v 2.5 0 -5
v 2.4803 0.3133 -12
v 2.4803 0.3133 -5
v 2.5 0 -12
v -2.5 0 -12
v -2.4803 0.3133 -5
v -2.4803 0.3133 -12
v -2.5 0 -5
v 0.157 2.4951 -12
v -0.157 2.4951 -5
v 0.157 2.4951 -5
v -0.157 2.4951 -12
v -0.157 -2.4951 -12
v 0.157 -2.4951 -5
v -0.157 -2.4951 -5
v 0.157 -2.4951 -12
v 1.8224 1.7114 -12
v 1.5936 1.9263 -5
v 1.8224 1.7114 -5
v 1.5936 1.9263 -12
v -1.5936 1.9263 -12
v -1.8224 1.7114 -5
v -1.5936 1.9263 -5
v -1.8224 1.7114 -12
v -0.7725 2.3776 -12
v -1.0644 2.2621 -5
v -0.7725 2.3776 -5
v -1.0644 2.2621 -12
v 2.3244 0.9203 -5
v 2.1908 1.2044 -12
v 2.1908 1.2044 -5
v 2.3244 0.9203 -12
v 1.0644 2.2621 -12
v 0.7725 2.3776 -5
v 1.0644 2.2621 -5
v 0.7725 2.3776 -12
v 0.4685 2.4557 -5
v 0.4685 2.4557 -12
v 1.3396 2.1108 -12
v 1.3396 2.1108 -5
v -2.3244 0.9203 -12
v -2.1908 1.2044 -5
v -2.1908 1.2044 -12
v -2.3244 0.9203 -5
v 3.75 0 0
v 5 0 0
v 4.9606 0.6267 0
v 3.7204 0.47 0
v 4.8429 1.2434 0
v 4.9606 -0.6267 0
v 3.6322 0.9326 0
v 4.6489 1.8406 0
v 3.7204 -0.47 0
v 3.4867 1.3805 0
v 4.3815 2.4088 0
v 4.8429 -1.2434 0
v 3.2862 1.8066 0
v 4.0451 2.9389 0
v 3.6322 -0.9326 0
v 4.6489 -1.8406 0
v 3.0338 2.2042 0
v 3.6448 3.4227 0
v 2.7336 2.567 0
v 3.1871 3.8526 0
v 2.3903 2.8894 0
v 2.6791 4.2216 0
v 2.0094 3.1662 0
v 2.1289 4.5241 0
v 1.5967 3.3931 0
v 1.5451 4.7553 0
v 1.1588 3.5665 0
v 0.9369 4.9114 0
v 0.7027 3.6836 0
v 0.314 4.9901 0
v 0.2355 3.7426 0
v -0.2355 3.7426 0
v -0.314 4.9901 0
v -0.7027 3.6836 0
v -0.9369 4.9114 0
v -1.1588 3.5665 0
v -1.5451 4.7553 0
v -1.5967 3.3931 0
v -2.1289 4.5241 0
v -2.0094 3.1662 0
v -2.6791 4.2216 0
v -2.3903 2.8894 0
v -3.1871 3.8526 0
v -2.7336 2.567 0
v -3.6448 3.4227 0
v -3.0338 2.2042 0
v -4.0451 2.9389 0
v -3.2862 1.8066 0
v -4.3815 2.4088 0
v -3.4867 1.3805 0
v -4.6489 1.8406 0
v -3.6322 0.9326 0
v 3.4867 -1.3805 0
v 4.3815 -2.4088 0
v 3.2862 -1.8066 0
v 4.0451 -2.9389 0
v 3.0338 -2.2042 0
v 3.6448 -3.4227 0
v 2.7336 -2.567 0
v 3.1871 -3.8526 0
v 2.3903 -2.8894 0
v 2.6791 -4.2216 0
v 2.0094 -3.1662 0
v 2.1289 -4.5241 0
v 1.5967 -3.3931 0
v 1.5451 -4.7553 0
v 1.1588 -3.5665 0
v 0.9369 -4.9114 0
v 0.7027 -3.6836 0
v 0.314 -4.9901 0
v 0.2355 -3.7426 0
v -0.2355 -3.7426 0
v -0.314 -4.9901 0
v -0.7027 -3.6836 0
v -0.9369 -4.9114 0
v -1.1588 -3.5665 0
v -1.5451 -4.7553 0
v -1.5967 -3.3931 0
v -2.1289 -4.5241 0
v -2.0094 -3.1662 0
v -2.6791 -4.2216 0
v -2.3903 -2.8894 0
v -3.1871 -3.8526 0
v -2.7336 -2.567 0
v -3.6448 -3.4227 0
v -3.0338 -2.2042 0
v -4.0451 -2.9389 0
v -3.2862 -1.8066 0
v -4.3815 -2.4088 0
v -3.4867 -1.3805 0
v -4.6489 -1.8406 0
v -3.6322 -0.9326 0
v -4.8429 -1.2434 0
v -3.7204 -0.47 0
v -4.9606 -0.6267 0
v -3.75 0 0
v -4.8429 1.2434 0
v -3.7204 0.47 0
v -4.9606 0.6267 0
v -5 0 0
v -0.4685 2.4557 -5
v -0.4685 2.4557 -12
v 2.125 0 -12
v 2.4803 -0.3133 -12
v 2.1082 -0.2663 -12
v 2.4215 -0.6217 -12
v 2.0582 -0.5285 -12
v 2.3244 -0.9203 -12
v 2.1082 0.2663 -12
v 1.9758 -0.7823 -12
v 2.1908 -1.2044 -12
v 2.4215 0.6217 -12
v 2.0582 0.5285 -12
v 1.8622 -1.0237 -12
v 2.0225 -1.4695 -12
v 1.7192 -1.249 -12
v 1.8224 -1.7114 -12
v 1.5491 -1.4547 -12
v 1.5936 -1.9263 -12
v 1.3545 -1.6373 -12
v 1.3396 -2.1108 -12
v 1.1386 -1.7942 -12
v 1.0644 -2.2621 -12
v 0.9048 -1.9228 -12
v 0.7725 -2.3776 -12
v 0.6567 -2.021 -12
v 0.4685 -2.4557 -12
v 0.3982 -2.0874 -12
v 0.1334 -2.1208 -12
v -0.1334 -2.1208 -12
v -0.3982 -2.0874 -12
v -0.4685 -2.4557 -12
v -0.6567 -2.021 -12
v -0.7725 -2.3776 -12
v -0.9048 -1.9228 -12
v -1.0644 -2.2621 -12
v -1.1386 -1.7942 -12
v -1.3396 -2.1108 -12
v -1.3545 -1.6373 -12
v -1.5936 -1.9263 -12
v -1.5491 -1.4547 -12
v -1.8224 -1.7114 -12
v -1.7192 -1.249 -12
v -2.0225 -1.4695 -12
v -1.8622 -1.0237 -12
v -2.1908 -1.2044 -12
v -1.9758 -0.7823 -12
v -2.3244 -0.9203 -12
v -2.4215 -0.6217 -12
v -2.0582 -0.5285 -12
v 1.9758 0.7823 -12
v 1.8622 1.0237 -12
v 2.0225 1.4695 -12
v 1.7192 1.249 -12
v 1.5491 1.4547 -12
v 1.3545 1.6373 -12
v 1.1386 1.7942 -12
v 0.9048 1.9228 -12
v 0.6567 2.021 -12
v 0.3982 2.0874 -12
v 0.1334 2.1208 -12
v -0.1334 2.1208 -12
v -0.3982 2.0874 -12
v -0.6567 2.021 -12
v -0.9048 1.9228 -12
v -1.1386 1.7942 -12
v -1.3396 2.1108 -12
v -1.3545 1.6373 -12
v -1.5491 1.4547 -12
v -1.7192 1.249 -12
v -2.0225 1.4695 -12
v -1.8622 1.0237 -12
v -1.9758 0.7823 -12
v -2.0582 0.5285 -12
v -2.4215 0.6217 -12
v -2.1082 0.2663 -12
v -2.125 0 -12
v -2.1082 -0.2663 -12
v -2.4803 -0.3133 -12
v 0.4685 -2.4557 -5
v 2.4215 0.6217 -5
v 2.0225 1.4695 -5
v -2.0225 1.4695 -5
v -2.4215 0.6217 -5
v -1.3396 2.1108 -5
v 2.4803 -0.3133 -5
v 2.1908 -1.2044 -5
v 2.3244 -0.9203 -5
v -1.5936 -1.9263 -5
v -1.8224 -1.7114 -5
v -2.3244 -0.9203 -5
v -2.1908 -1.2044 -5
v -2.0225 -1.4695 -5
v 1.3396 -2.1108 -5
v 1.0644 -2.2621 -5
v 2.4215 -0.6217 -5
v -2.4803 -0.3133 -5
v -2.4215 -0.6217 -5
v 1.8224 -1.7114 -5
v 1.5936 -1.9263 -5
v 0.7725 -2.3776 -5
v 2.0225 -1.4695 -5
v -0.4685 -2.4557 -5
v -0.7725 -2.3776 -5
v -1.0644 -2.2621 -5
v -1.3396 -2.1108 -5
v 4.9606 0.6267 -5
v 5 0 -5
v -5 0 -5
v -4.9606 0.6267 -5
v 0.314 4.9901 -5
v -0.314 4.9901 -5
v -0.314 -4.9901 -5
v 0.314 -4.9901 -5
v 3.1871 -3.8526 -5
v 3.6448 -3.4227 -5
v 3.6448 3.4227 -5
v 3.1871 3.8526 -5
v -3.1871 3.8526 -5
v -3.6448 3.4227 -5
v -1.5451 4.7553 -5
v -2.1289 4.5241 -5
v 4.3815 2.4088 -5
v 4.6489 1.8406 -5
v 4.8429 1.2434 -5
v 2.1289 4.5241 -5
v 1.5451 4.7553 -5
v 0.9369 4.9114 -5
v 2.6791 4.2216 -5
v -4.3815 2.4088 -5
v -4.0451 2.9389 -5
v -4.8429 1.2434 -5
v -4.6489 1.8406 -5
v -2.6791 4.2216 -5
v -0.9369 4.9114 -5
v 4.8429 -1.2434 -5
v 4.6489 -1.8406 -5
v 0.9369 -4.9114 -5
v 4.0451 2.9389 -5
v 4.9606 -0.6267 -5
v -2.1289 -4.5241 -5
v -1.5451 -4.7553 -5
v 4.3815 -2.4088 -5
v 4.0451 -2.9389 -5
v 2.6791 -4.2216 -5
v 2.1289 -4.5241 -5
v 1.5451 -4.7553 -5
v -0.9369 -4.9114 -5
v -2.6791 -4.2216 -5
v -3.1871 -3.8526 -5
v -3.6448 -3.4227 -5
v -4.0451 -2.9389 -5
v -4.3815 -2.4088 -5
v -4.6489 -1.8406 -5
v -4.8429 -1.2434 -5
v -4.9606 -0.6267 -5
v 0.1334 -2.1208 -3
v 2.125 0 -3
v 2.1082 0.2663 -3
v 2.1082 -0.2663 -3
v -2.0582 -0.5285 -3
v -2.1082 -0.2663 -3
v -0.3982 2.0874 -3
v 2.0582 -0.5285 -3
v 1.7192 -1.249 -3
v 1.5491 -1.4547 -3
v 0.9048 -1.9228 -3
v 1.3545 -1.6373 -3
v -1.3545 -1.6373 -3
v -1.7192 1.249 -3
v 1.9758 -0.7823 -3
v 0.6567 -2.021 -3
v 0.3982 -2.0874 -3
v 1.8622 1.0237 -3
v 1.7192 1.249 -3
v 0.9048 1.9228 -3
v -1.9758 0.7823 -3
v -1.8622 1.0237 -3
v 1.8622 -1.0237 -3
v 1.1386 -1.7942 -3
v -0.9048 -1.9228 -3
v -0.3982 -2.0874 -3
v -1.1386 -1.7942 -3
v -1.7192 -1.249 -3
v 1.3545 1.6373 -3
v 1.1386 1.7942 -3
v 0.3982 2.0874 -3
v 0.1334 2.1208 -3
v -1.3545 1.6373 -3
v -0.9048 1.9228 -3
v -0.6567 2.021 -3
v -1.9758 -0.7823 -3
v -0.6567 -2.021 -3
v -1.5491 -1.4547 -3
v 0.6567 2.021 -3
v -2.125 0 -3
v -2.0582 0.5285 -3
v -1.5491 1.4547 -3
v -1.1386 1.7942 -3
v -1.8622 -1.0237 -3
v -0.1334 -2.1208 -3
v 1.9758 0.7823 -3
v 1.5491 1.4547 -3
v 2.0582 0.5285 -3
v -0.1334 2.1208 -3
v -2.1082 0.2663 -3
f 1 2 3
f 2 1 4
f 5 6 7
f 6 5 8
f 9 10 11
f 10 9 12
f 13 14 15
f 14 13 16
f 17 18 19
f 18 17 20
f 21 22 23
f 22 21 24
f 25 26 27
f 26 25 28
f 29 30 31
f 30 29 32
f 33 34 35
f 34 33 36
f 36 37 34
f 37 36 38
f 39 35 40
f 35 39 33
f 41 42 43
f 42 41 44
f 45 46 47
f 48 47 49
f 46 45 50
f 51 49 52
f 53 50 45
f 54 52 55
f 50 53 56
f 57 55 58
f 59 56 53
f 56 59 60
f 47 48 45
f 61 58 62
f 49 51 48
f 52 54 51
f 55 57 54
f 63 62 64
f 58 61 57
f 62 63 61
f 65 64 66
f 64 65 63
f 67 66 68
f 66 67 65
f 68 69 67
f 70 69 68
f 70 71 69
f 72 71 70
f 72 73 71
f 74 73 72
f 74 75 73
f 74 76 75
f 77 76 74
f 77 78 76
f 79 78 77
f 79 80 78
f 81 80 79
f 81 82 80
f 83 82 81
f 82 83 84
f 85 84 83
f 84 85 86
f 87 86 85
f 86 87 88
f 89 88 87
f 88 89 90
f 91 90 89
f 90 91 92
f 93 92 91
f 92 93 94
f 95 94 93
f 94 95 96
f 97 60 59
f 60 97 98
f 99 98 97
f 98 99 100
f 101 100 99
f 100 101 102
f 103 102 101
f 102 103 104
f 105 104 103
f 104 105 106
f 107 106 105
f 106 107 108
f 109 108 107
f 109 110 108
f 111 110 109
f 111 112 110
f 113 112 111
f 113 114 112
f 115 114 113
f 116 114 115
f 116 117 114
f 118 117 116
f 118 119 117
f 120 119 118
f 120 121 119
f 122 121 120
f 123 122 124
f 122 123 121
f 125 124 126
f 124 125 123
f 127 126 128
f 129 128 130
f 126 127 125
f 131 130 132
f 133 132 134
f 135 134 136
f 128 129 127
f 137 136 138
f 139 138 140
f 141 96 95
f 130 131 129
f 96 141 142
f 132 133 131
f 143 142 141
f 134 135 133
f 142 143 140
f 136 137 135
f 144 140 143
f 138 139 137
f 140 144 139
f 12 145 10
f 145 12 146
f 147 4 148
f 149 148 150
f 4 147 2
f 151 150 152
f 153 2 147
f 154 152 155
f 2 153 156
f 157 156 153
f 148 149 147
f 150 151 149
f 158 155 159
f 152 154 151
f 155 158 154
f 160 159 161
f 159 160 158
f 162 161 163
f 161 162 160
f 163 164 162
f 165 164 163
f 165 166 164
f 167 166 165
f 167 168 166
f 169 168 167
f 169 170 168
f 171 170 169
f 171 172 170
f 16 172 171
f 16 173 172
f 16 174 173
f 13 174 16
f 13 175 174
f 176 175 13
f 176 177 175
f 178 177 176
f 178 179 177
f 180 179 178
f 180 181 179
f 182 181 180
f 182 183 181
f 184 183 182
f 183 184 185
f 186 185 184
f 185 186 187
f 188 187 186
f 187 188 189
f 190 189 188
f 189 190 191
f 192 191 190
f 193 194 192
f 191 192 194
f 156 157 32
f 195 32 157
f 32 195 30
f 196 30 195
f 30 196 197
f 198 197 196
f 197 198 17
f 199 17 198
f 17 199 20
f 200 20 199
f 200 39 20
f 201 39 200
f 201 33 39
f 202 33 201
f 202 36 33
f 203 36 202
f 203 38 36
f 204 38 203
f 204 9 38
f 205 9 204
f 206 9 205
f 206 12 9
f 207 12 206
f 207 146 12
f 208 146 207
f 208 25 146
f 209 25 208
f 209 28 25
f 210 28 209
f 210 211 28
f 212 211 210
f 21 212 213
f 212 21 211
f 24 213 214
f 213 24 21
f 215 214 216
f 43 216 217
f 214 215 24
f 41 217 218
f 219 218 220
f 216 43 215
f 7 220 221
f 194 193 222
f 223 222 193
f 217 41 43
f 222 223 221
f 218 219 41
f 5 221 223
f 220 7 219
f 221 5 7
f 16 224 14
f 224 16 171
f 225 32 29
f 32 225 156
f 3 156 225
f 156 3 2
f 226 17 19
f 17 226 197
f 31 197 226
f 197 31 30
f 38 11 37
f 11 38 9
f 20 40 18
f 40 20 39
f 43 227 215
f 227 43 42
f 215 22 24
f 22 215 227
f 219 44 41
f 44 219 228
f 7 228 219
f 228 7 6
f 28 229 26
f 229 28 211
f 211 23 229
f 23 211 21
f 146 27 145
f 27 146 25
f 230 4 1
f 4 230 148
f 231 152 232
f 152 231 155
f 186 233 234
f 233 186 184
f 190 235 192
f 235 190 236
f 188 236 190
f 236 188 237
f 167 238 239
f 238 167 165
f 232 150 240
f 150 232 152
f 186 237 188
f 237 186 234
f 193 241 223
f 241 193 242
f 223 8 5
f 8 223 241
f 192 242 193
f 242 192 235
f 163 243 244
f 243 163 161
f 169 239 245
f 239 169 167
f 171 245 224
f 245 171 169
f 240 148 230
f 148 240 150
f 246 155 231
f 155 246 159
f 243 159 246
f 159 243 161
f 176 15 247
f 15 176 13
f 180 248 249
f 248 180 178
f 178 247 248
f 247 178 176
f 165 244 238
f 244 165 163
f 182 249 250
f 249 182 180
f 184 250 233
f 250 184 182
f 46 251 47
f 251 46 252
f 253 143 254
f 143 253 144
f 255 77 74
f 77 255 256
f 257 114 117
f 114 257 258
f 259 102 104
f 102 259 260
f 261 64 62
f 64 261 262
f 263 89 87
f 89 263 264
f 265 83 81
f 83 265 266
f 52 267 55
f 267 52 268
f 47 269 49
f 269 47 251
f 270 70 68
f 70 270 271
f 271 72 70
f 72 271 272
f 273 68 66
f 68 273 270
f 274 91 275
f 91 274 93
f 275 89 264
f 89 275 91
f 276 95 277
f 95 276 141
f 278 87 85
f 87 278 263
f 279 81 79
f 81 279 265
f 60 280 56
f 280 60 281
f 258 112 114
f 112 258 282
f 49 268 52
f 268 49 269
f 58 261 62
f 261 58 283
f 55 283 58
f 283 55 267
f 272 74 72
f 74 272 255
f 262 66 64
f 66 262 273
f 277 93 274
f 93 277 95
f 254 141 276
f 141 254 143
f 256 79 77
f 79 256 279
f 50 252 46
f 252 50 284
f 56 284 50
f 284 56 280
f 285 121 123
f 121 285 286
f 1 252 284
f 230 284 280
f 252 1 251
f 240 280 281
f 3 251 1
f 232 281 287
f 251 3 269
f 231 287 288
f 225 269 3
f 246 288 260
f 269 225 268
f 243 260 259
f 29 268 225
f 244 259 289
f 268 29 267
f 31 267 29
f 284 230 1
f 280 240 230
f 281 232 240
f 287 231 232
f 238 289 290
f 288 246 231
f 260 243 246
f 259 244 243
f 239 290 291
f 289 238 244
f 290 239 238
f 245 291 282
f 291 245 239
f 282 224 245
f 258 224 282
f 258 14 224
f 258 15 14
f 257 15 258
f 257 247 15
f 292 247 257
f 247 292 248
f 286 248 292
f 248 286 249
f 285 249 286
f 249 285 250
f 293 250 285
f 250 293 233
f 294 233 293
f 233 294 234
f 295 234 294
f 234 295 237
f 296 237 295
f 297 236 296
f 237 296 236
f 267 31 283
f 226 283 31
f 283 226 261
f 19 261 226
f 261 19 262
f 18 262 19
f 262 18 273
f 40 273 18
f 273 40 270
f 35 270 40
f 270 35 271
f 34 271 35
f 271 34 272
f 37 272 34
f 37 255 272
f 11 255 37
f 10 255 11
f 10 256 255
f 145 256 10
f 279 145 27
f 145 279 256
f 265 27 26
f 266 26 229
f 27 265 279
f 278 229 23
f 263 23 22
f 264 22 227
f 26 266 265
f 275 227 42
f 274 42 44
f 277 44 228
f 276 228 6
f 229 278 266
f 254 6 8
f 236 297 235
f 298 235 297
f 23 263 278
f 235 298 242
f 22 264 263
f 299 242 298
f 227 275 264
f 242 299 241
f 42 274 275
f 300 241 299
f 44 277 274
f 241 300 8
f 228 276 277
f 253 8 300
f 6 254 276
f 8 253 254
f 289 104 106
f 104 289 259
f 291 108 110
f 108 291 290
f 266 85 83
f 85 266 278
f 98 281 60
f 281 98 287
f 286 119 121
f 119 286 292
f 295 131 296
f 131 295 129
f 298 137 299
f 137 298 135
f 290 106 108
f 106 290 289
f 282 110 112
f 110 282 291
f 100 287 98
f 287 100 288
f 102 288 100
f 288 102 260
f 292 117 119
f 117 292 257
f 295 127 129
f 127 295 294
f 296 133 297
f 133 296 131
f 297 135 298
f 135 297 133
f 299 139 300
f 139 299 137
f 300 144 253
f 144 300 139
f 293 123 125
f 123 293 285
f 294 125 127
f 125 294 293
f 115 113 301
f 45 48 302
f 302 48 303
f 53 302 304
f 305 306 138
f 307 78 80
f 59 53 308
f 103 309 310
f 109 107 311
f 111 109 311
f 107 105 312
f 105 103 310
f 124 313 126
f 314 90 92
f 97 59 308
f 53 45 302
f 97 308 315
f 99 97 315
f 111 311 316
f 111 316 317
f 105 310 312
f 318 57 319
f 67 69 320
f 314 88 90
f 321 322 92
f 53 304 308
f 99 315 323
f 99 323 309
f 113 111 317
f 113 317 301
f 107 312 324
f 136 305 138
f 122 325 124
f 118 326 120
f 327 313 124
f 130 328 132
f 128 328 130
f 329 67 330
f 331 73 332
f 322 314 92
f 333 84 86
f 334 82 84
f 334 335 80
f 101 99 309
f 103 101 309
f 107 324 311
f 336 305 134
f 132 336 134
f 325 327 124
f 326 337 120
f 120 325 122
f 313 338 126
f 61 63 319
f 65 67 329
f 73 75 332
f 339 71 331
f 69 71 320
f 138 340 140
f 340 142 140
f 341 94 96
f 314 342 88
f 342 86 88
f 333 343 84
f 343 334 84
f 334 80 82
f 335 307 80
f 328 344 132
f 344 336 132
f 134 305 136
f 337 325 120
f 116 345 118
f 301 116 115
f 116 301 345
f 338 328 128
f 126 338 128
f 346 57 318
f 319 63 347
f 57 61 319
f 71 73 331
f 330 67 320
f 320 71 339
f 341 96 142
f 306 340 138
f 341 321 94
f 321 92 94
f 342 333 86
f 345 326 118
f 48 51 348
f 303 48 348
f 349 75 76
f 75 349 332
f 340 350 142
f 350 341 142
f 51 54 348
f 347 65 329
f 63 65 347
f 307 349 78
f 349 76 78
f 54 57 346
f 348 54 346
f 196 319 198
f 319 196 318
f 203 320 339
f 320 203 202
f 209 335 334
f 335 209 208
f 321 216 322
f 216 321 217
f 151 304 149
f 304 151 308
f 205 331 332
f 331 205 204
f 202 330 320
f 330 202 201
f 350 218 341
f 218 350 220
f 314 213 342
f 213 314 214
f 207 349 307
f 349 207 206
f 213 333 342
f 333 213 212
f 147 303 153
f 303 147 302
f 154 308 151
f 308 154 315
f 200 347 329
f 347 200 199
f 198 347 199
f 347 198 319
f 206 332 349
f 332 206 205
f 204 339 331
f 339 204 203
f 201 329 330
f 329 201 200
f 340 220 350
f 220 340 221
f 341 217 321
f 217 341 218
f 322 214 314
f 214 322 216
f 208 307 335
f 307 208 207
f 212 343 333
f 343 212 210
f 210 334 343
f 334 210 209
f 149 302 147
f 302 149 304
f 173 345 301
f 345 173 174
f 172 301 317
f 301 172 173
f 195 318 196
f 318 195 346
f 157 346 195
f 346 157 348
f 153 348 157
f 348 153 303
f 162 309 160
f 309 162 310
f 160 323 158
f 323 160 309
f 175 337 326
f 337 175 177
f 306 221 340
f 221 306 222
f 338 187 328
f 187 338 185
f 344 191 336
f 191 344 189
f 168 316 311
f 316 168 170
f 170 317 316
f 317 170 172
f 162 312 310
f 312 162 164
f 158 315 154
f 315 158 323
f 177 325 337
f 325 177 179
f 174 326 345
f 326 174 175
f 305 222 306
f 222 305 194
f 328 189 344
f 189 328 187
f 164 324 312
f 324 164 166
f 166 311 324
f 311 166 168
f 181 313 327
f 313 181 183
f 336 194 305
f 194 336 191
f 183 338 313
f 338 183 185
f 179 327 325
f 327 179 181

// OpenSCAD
$fn = 50;


difference() {
	union() {
		translate(v = [0, 0, -12.0000000000]) {
			cylinder(h = 12, r = 2.5000000000);
		}
		translate(v = [0, 0, -5.0000000000]) {
			cylinder(h = 5, r = 5.0000000000);
		}
	}
	union() {
		translate(v = [0, 0, 0]) {
			rotate(a = [0, 0, 0]) {
				difference() {
					union() {
						#translate(v = [0, 0, -12.0000000000]) {
							cylinder(h = 12, r = 2.0000000000);
						}
						#translate(v = [0, 0, -3]) {
							cylinder(h = 3, r1 = 2.1250000000, r2 = 3.7500000000);
						}
						#translate(v = [0, 0, -12.0000000000]) {
							cylinder(h = 12, r = 2.1250000000);
						}
						#translate(v = [0, 0, -12.0000000000]) {
							cylinder(h = 12, r = 2.0000000000);
						}
					}
					union();
				}
			}
		}
	}
}
